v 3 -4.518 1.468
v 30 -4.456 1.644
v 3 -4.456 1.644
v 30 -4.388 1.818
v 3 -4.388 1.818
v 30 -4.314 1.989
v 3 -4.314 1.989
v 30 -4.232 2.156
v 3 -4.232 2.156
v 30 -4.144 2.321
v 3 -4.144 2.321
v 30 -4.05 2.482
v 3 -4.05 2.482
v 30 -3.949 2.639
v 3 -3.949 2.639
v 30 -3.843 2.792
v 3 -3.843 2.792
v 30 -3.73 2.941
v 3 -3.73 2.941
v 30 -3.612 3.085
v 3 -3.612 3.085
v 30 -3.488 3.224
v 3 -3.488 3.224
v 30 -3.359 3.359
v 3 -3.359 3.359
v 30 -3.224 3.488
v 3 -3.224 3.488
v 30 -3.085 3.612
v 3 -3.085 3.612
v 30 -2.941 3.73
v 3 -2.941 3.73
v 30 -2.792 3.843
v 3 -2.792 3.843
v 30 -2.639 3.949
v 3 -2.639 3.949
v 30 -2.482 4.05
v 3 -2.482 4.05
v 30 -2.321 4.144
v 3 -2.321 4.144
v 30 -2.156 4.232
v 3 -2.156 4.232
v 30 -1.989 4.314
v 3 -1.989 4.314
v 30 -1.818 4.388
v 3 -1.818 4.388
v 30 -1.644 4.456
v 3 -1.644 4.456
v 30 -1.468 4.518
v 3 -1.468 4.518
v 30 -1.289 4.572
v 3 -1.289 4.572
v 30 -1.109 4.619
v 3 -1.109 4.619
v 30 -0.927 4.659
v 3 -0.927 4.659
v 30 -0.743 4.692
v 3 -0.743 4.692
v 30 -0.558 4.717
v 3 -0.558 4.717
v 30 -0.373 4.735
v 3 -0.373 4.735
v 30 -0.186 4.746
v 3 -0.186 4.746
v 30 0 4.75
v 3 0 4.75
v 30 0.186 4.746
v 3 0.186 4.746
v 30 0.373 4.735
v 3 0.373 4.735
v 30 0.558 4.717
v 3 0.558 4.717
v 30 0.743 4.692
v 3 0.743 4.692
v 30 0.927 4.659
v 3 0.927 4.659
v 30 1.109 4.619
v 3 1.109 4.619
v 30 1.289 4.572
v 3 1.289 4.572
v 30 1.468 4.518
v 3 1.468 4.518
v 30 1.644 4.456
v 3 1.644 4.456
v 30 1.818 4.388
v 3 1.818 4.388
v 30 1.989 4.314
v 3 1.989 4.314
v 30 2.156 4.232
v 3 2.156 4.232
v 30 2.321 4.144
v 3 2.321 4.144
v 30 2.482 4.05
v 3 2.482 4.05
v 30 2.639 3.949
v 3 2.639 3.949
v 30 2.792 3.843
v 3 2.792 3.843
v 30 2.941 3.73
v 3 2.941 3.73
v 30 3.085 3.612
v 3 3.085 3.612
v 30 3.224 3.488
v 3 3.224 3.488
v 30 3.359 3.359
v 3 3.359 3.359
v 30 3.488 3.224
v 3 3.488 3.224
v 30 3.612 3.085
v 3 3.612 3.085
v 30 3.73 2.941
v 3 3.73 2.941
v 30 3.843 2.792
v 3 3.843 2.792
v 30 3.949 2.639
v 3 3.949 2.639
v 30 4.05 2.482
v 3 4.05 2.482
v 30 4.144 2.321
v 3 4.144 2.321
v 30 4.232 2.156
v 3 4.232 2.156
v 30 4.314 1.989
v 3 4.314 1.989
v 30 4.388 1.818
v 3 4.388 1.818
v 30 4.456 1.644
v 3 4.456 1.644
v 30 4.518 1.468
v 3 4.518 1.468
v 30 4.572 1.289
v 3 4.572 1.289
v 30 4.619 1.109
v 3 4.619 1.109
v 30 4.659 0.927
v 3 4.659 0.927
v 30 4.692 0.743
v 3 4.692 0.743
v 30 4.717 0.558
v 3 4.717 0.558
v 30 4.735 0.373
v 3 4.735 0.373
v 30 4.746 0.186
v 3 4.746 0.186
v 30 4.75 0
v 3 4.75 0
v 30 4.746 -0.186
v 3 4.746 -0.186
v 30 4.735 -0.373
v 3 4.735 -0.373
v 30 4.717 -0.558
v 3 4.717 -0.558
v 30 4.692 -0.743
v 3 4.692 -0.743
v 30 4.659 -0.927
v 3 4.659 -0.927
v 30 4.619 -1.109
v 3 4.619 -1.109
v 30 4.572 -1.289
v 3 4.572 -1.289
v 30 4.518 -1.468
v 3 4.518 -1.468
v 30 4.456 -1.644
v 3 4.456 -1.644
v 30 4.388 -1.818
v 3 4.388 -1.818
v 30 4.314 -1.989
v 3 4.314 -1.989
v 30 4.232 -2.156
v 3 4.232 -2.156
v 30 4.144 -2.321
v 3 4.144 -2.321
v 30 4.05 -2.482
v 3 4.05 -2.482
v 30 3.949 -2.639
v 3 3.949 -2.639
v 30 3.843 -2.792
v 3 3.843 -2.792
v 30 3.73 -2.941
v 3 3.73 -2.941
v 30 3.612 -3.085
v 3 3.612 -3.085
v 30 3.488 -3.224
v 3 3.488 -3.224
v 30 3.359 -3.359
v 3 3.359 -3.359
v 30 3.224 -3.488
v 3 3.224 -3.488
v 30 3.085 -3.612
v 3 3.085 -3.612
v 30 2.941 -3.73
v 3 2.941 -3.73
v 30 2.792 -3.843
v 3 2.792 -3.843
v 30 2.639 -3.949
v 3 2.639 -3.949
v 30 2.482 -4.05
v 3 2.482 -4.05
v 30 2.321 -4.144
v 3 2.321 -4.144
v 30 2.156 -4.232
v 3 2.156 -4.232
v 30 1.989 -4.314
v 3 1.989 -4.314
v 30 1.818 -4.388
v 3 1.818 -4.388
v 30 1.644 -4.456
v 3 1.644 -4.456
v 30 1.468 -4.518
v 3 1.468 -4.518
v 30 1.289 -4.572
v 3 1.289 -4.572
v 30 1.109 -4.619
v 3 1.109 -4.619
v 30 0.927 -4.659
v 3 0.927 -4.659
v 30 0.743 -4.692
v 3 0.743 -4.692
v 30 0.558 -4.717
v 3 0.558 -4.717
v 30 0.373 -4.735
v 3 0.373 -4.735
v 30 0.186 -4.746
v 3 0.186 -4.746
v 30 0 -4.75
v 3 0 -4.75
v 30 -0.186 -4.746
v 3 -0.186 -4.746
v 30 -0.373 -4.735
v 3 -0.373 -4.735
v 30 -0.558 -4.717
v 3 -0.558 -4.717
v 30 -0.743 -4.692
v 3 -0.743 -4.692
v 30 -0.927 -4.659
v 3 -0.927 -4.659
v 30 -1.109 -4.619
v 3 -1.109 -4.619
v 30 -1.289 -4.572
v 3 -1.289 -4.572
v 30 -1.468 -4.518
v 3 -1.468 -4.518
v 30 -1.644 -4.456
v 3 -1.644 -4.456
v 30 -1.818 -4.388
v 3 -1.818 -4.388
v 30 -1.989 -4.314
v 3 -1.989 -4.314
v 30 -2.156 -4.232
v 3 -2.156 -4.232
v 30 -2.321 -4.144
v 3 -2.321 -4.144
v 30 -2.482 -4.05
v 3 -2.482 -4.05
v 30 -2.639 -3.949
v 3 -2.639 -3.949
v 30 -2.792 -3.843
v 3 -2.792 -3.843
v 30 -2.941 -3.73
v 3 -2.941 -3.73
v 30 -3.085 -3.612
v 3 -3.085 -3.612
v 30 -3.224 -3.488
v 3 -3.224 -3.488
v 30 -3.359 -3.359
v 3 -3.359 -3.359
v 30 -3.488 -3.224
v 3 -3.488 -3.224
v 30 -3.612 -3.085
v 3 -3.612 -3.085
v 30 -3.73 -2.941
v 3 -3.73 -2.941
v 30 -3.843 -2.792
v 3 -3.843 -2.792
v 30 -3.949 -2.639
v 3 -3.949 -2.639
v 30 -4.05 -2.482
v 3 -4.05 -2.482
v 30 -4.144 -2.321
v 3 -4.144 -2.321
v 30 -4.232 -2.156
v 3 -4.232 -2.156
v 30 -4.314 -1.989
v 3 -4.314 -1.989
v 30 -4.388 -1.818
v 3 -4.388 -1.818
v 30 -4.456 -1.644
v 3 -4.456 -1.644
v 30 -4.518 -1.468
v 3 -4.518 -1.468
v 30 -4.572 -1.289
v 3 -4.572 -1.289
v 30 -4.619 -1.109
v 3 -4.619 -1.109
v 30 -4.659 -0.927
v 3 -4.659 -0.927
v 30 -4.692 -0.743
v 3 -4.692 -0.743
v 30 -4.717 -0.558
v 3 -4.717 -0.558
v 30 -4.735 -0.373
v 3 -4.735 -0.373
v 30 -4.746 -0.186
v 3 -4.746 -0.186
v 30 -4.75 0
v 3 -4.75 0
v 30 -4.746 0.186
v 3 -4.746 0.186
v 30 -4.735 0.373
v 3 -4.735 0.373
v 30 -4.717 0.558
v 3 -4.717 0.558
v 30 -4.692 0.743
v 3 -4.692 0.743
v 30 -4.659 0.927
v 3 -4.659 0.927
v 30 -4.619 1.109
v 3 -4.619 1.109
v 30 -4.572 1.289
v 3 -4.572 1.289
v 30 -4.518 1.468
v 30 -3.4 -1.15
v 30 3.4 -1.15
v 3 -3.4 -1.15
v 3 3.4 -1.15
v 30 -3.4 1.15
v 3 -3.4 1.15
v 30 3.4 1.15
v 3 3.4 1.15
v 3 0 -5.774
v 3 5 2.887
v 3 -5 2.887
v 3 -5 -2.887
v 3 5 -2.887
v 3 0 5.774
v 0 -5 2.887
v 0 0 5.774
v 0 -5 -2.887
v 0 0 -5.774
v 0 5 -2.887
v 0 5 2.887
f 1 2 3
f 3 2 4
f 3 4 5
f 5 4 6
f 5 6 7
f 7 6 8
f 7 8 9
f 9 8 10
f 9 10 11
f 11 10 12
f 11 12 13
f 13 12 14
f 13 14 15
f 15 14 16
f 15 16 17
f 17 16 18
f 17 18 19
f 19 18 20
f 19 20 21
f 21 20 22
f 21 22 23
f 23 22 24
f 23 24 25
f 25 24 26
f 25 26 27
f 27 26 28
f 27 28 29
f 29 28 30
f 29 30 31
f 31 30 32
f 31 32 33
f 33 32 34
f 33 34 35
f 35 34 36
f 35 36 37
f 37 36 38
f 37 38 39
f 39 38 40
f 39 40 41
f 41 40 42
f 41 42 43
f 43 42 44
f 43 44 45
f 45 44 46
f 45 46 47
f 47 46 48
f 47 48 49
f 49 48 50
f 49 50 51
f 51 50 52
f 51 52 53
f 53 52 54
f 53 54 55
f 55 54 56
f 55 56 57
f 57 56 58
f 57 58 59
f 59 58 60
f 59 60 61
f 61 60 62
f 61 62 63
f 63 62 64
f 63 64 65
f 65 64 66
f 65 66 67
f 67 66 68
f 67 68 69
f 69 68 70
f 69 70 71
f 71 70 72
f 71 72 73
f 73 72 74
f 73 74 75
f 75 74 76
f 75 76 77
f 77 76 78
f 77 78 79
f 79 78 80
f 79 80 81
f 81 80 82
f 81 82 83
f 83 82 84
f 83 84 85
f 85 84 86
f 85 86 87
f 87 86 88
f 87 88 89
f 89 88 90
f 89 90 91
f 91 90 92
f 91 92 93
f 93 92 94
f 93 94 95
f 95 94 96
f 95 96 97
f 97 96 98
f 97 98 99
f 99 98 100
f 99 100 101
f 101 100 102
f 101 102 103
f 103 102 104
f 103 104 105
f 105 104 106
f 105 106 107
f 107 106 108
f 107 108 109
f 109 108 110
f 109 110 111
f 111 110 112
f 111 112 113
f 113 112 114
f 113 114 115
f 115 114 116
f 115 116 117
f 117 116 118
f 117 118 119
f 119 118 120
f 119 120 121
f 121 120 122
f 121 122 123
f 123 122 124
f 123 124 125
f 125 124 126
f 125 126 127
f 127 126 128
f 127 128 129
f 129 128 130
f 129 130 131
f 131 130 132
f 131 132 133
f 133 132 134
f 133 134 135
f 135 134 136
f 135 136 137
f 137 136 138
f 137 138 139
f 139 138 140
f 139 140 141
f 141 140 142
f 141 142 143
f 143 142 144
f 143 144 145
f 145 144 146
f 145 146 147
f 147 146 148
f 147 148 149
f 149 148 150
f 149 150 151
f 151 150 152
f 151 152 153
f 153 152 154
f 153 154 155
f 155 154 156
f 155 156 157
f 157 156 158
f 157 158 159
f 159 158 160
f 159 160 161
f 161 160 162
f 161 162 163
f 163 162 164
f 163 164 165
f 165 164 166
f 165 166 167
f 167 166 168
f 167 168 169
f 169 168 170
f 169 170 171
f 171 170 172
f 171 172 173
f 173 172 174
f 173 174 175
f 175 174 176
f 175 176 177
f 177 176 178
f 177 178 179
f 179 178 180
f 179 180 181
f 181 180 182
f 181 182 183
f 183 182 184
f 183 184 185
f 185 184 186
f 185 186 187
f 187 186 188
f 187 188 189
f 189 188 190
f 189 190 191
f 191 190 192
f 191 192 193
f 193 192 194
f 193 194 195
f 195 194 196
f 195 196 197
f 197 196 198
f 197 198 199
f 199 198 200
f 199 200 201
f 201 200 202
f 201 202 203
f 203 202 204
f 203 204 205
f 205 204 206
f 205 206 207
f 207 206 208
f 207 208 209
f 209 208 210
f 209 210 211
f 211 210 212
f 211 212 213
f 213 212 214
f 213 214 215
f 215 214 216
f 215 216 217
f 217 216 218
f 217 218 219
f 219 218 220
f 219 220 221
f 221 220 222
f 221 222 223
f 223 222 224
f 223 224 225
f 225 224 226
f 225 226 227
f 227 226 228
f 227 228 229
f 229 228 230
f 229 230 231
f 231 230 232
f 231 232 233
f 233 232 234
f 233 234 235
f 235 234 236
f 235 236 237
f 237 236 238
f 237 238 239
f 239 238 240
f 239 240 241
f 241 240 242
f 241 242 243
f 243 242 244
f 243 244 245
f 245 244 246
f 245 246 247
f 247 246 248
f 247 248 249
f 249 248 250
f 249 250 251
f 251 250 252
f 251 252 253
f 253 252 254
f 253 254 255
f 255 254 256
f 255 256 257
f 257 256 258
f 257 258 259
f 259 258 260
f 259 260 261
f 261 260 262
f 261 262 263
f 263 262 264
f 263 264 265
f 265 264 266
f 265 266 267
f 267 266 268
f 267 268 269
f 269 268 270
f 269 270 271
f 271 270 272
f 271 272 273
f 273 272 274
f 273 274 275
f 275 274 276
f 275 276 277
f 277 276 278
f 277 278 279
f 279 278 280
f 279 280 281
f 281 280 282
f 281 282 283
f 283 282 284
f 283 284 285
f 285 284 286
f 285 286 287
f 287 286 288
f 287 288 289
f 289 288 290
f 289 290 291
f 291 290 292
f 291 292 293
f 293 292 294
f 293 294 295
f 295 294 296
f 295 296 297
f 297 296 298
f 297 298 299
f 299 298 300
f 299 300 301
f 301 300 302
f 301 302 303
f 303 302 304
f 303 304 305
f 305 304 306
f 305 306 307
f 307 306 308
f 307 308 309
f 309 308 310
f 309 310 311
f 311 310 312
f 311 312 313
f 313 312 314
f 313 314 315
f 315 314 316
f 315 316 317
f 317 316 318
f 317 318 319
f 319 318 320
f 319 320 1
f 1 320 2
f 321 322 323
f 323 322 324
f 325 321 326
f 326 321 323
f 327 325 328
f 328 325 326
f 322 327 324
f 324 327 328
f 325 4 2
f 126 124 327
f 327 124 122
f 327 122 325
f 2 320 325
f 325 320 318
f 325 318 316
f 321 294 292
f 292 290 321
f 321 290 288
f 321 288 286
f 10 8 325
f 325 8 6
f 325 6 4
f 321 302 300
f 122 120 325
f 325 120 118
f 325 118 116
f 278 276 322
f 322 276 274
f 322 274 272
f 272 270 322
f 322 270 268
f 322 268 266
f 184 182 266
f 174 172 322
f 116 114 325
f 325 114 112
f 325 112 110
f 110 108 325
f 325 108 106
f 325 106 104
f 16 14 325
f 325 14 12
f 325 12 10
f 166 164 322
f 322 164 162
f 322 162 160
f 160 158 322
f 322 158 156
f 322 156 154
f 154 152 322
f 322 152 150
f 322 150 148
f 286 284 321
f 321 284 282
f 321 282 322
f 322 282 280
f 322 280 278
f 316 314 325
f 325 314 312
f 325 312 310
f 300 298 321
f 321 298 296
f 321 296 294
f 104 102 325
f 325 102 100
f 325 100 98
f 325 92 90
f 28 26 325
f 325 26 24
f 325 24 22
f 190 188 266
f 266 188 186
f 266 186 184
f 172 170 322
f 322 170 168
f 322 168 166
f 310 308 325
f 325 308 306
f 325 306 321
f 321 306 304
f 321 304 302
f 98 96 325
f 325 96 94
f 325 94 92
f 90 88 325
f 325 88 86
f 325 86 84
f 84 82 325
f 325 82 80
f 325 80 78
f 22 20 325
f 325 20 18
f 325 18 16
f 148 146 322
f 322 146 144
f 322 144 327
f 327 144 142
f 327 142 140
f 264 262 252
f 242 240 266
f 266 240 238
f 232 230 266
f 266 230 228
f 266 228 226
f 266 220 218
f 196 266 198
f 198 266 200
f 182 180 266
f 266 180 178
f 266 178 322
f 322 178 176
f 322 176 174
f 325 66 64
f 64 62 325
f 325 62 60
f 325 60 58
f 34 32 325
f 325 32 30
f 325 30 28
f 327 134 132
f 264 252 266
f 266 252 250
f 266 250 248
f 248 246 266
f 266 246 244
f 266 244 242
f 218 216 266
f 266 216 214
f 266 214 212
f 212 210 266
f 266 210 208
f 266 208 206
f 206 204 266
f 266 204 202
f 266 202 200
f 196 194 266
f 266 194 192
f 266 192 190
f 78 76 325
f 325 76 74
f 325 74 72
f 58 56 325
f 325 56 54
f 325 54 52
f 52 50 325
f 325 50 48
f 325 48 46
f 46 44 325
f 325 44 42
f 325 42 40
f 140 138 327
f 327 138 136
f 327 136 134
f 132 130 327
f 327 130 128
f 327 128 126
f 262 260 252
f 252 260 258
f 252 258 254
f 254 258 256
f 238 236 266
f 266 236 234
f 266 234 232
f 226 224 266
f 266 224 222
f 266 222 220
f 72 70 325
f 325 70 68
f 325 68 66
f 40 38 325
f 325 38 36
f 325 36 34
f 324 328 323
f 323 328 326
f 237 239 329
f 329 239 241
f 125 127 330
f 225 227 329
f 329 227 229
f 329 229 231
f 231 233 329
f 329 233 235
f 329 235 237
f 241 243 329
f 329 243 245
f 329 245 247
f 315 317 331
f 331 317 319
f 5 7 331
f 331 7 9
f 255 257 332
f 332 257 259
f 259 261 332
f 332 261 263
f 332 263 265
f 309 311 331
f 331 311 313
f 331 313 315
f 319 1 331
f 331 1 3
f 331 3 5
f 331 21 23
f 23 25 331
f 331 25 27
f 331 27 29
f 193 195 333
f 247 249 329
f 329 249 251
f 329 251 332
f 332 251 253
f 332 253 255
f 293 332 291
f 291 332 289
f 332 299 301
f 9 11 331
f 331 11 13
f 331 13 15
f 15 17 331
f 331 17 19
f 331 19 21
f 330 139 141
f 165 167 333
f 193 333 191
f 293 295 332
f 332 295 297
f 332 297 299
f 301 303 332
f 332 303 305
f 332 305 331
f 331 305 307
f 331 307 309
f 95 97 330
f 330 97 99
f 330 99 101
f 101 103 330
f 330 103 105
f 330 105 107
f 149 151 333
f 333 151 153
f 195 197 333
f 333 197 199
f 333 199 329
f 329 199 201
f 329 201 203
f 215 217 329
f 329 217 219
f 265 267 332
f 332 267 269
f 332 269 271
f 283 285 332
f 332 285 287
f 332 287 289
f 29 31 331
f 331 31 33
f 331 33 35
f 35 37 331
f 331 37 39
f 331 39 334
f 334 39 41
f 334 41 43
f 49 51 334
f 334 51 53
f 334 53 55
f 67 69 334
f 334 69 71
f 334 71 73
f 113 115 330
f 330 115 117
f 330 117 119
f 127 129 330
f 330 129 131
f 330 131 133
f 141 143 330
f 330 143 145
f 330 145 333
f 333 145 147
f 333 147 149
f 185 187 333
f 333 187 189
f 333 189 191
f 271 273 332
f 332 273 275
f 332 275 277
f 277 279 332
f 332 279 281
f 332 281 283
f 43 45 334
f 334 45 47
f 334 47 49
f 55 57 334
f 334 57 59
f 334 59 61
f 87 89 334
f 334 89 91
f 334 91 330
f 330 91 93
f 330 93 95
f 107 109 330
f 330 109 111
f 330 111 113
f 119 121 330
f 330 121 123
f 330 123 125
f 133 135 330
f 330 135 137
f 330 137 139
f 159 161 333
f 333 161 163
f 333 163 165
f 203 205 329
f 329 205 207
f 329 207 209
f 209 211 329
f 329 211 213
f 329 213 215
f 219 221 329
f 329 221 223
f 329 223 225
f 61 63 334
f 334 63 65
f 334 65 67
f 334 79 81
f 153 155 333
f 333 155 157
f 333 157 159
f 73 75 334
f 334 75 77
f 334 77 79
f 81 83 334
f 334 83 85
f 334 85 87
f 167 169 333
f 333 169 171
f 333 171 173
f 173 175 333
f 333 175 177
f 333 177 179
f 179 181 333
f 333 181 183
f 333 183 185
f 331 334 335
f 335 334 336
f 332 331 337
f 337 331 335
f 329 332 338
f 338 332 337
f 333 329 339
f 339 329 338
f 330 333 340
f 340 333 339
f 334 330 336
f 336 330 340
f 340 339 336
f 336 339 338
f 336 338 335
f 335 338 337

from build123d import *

# Parameters (mm, degrees)
SKETCH1_R           = 4.75
BOSS_EXTRUDE1_DEPTH = 30
SKETCH2_W           = 2.3
SKETCH2_H           = 6.8
CUT_EXTRUDE1_DEPTH  = 30
BOSS_EXTRUDE2_DEPTH = 3


with BuildPart() as part:
    # Sketch1 → Boss-Extrude1 (new body)
    with BuildSketch(Plane(origin=(0, 0, 0), x_dir=(0, 0, -1), z_dir=(1, 0, 0))):
        Circle(SKETCH1_R)
    extrude(amount=BOSS_EXTRUDE1_DEPTH)

    # Sketch2 → Cut-Extrude1 (cut)
    with BuildSketch(Plane(origin=(30, 0, 0), x_dir=(0, 0, -1), z_dir=(1, 0, 0))):
        Rectangle(SKETCH2_W, SKETCH2_H)
    extrude(amount=-CUT_EXTRUDE1_DEPTH, mode=Mode.SUBTRACT)

    # Sketch3 → Boss-Extrude2 (add)
    with BuildSketch(Plane.ZY):
        Polygon((5.773502692, 0), (2.886751346, 5), (-2.886751346, 5), (-5.773502692, 0), (-2.886751346, -5), (2.886751346, -5), align=None)
    extrude(amount=-BOSS_EXTRUDE2_DEPTH)


solid = part.part
